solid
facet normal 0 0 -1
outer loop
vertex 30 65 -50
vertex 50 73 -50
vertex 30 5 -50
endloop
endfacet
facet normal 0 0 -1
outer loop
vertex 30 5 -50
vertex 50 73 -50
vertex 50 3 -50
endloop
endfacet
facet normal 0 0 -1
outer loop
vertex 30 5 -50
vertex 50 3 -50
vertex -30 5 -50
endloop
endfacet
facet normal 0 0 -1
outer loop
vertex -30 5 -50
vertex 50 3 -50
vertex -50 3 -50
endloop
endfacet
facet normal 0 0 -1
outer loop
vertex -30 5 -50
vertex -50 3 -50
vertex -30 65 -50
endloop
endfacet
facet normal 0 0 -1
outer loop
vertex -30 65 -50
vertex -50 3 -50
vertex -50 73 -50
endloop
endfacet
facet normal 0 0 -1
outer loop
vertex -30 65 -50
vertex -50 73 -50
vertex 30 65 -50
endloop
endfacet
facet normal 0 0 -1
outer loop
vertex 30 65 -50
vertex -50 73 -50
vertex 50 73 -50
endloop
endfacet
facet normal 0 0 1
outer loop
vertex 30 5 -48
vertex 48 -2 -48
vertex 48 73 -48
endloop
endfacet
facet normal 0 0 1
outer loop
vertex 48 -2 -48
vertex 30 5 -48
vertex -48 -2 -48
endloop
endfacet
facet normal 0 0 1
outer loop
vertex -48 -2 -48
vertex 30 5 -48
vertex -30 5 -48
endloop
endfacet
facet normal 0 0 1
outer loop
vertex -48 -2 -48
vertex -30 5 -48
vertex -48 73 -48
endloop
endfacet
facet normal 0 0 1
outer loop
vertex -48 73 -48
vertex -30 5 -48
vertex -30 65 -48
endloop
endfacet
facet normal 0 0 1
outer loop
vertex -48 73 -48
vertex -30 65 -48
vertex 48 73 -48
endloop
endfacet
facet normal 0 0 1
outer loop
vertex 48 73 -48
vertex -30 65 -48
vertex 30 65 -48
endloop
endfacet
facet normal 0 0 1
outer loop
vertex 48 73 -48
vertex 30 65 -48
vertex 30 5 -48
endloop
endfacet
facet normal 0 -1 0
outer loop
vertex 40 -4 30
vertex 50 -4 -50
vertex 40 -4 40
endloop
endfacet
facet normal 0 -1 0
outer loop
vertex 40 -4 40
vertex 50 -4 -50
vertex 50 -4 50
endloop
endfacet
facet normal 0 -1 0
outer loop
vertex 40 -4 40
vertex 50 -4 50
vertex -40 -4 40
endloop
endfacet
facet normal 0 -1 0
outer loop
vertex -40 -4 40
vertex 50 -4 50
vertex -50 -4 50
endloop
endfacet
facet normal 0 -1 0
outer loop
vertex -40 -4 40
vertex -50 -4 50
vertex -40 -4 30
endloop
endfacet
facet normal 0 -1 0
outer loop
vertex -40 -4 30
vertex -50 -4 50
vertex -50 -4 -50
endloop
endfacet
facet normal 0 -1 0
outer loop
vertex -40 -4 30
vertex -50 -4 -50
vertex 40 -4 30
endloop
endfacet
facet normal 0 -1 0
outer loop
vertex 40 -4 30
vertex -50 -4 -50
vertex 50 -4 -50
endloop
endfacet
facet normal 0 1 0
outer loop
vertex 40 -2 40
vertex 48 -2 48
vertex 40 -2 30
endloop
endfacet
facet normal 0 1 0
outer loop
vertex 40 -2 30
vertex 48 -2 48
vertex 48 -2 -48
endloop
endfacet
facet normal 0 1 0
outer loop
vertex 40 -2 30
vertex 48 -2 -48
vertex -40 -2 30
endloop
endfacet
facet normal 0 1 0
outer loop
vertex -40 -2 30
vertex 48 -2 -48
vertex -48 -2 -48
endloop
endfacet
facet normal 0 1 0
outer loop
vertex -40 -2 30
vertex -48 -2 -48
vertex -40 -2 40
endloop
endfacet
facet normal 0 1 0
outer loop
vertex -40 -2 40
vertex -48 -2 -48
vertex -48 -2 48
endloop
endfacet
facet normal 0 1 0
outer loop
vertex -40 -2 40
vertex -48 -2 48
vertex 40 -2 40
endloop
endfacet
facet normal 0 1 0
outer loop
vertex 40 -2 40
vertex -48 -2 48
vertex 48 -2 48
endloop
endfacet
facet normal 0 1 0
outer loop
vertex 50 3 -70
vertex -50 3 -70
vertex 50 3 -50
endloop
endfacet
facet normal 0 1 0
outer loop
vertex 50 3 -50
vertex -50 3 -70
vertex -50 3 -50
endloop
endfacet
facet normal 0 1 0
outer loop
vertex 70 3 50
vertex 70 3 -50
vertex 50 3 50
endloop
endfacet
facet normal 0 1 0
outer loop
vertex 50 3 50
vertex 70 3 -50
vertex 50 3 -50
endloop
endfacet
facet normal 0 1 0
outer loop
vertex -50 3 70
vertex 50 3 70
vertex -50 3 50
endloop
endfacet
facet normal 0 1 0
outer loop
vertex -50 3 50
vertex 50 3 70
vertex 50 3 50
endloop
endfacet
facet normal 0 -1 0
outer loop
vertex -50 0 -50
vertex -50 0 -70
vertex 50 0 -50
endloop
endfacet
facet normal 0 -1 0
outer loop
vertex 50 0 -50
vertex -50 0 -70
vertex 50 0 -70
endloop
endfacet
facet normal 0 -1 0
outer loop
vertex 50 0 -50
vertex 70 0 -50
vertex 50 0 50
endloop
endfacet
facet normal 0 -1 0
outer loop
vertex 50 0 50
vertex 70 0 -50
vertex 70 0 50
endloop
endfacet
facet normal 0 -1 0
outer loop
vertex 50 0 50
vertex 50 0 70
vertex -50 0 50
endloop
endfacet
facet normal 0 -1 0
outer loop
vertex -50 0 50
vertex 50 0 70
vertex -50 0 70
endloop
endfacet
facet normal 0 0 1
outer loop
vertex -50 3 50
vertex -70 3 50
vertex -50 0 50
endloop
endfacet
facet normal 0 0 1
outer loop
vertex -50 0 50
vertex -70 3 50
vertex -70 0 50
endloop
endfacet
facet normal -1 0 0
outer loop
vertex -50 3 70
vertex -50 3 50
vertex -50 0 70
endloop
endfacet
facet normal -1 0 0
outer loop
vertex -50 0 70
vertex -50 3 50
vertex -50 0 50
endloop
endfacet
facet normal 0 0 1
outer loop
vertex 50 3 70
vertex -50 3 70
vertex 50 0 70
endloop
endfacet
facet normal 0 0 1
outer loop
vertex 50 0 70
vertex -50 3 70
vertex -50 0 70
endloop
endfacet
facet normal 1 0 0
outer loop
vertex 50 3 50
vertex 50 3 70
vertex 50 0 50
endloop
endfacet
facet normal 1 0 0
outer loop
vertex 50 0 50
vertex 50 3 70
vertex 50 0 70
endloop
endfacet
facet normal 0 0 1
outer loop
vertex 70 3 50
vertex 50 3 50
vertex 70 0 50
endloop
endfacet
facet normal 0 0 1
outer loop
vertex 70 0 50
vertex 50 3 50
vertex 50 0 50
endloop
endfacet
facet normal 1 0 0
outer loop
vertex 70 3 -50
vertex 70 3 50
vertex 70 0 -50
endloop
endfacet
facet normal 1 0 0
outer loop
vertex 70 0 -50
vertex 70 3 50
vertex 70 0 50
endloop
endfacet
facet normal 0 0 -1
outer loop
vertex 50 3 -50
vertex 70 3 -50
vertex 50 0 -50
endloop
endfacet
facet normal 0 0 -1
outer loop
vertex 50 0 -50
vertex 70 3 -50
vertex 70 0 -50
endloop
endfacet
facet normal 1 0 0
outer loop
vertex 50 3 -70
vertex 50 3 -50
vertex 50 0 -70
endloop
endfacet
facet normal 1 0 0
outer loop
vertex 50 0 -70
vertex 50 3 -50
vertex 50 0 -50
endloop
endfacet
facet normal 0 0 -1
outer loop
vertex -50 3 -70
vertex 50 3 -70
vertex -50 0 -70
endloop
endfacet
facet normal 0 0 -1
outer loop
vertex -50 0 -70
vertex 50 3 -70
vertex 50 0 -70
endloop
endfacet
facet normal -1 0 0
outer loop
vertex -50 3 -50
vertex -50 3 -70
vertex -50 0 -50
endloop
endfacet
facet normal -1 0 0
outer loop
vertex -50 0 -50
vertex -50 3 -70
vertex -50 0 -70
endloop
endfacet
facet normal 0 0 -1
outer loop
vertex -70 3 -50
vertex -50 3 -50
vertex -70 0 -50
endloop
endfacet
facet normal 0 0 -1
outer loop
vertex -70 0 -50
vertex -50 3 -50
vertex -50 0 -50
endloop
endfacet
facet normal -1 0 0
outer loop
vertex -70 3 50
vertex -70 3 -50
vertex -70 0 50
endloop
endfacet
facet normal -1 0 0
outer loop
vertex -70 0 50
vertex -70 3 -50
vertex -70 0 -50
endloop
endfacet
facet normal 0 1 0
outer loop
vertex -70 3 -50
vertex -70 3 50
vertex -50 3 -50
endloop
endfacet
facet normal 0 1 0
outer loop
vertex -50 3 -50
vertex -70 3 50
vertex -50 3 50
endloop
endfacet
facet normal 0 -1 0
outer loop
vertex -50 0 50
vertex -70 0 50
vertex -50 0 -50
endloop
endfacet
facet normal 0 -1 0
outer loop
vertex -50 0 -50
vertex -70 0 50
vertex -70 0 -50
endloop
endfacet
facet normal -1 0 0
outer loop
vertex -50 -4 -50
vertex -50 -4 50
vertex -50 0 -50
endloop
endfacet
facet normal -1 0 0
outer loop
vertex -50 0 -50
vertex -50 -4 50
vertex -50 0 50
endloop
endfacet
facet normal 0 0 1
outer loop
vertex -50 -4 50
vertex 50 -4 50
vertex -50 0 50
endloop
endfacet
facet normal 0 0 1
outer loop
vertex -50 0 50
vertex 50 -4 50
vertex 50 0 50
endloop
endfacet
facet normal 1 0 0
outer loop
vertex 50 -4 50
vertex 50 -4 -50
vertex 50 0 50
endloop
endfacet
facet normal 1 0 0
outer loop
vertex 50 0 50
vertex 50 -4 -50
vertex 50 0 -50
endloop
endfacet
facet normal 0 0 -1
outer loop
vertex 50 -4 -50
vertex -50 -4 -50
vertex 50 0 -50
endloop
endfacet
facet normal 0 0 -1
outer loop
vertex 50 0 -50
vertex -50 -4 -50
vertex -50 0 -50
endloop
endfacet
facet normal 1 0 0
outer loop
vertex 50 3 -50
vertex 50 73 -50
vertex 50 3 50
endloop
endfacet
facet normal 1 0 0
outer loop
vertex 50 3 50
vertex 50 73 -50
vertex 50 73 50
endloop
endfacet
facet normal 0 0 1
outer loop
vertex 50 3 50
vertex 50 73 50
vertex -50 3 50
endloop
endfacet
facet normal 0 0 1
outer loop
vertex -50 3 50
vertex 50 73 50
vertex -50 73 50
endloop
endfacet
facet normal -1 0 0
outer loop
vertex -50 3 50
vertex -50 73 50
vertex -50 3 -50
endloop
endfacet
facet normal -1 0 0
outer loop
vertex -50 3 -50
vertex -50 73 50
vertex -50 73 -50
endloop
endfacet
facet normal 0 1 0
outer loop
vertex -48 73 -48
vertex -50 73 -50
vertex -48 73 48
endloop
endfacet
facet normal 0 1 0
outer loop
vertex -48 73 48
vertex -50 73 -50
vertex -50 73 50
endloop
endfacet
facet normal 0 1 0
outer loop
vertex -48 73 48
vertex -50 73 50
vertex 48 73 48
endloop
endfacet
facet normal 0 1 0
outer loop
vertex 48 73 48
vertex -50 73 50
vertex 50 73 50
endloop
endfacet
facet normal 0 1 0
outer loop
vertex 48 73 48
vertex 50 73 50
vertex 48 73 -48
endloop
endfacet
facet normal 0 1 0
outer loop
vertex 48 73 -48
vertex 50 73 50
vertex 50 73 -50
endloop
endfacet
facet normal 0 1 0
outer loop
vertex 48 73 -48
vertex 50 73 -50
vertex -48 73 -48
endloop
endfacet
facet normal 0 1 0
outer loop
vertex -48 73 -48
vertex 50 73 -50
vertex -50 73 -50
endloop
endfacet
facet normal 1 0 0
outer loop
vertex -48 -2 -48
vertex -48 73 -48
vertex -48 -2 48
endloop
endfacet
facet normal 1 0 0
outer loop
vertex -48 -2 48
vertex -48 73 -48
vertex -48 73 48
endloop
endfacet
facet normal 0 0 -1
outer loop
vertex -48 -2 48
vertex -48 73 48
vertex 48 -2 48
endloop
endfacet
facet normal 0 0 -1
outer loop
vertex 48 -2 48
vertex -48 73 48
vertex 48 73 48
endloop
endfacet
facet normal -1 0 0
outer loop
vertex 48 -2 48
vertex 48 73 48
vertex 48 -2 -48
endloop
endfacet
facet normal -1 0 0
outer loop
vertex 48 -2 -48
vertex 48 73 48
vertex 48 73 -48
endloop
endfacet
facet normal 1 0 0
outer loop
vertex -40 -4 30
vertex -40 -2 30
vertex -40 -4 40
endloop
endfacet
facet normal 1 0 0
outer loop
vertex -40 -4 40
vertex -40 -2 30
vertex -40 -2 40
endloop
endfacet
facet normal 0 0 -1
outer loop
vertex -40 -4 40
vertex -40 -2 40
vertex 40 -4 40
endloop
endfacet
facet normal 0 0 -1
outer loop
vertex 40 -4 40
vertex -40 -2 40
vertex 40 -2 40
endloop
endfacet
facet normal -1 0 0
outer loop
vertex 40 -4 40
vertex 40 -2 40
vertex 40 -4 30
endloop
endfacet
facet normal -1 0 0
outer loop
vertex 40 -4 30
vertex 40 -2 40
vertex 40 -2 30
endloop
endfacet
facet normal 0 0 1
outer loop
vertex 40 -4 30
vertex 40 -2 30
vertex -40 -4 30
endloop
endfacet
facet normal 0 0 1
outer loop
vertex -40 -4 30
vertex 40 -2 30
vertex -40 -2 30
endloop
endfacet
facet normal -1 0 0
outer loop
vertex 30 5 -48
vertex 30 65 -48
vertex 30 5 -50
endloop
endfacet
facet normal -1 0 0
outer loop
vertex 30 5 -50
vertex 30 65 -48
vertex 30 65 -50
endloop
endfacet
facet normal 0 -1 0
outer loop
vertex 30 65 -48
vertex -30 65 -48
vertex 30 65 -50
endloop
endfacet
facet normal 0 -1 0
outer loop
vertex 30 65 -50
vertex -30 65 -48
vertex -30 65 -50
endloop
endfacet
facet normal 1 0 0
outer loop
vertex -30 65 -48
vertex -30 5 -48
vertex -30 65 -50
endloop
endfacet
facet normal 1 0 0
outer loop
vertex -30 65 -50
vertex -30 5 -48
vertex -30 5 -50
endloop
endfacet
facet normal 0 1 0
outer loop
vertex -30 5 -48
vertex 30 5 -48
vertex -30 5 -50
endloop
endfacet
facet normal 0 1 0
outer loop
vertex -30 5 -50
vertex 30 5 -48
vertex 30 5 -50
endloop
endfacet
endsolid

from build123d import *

# Parameters (mm, degrees)
SKETCH1_W                = 20
SKETCH1_H                = 100
BOSS_EXTRUDE1_DEPTH      = 3
BOSS_EXTRUDE2_DEPTH      = 70
BOSS_EXTRUDE2_DEPTH_BACK = 7
SKETCH2_W                = 100
SKETCH2_H                = 100
SHELL1_START             = -2
SHELL1_OUTLINE_W         = 96
SHELL1_OUTLINE_H         = 96
SHELL1_DEPTH             = 75
SKETCH3_W                = 80
SKETCH3_H                = 10
CUT_EXTRUDE1_DEPTH       = 11
SKETCH6_W                = 60
SKETCH6_H                = 60
CUT_EXTRUDE2_DEPTH       = 2


# Read off the part's stored shape, not the designer's step: Shell1
with BuildPart() as part:
    # Sketch1 → Boss-Extrude1 (new body)
    with BuildSketch(Plane(origin=(0, 0, 0), x_dir=(1, 0, 0), z_dir=(0, 1, 0))):
        Polygon((0, 50), (-50, 50), (-50, -50), (0, -50), (50, -50), (50, 0), (50, 50), align=None)
        with Locations((-60, 0)):
            Rectangle(SKETCH1_W, SKETCH1_H)
        Polygon((0, -50), (-50, -50), (-50, -70), (0, -70), (50, -70), (50, -50), align=None)
        Polygon((70, 50), (50, 50), (50, 0), (50, -50), (70, -50), (70, 0), align=None)
        Polygon((-50, 70), (-50, 50), (0, 50), (50, 50), (50, 70), (0, 70), align=None)
    extrude(amount=BOSS_EXTRUDE1_DEPTH)

    # Sketch2 → Boss-Extrude2 (add, two sides: drawn at the far end of the back side and taken through both)
    with BuildSketch(Plane(origin=(0, 3, 0), x_dir=(-1, 0, 0), z_dir=(0, 1, 0)).offset(-BOSS_EXTRUDE2_DEPTH_BACK)):
        Rectangle(SKETCH2_W, SKETCH2_H)
    extrude(amount=BOSS_EXTRUDE2_DEPTH + BOSS_EXTRUDE2_DEPTH_BACK)

    # Shell1 outline → Shell1 (cut)
    with BuildSketch(Plane(origin=(0, 0, 0), x_dir=(1, 0, 0), z_dir=(0, 1, 0)).offset(SHELL1_START)):
        Rectangle(SHELL1_OUTLINE_W, SHELL1_OUTLINE_H)
    extrude(amount=SHELL1_DEPTH, mode=Mode.SUBTRACT)

    # Sketch3 → Cut-Extrude1 (cut)
    with BuildSketch(Plane.XZ.offset(4)):
        with Locations((0, 35)):
            Rectangle(SKETCH3_W, SKETCH3_H)
    extrude(amount=-CUT_EXTRUDE1_DEPTH, mode=Mode.SUBTRACT)

    # Sketch6 → Cut-Extrude2 (cut)
    with BuildSketch(Plane(origin=(0, 0, -50), x_dir=(-1, 0, 0), z_dir=(0, 0, -1))):
        with Locations((0, 35)):
            Rectangle(SKETCH6_W, SKETCH6_H)
    extrude(amount=-CUT_EXTRUDE2_DEPTH, mode=Mode.SUBTRACT)


solid = part.part
